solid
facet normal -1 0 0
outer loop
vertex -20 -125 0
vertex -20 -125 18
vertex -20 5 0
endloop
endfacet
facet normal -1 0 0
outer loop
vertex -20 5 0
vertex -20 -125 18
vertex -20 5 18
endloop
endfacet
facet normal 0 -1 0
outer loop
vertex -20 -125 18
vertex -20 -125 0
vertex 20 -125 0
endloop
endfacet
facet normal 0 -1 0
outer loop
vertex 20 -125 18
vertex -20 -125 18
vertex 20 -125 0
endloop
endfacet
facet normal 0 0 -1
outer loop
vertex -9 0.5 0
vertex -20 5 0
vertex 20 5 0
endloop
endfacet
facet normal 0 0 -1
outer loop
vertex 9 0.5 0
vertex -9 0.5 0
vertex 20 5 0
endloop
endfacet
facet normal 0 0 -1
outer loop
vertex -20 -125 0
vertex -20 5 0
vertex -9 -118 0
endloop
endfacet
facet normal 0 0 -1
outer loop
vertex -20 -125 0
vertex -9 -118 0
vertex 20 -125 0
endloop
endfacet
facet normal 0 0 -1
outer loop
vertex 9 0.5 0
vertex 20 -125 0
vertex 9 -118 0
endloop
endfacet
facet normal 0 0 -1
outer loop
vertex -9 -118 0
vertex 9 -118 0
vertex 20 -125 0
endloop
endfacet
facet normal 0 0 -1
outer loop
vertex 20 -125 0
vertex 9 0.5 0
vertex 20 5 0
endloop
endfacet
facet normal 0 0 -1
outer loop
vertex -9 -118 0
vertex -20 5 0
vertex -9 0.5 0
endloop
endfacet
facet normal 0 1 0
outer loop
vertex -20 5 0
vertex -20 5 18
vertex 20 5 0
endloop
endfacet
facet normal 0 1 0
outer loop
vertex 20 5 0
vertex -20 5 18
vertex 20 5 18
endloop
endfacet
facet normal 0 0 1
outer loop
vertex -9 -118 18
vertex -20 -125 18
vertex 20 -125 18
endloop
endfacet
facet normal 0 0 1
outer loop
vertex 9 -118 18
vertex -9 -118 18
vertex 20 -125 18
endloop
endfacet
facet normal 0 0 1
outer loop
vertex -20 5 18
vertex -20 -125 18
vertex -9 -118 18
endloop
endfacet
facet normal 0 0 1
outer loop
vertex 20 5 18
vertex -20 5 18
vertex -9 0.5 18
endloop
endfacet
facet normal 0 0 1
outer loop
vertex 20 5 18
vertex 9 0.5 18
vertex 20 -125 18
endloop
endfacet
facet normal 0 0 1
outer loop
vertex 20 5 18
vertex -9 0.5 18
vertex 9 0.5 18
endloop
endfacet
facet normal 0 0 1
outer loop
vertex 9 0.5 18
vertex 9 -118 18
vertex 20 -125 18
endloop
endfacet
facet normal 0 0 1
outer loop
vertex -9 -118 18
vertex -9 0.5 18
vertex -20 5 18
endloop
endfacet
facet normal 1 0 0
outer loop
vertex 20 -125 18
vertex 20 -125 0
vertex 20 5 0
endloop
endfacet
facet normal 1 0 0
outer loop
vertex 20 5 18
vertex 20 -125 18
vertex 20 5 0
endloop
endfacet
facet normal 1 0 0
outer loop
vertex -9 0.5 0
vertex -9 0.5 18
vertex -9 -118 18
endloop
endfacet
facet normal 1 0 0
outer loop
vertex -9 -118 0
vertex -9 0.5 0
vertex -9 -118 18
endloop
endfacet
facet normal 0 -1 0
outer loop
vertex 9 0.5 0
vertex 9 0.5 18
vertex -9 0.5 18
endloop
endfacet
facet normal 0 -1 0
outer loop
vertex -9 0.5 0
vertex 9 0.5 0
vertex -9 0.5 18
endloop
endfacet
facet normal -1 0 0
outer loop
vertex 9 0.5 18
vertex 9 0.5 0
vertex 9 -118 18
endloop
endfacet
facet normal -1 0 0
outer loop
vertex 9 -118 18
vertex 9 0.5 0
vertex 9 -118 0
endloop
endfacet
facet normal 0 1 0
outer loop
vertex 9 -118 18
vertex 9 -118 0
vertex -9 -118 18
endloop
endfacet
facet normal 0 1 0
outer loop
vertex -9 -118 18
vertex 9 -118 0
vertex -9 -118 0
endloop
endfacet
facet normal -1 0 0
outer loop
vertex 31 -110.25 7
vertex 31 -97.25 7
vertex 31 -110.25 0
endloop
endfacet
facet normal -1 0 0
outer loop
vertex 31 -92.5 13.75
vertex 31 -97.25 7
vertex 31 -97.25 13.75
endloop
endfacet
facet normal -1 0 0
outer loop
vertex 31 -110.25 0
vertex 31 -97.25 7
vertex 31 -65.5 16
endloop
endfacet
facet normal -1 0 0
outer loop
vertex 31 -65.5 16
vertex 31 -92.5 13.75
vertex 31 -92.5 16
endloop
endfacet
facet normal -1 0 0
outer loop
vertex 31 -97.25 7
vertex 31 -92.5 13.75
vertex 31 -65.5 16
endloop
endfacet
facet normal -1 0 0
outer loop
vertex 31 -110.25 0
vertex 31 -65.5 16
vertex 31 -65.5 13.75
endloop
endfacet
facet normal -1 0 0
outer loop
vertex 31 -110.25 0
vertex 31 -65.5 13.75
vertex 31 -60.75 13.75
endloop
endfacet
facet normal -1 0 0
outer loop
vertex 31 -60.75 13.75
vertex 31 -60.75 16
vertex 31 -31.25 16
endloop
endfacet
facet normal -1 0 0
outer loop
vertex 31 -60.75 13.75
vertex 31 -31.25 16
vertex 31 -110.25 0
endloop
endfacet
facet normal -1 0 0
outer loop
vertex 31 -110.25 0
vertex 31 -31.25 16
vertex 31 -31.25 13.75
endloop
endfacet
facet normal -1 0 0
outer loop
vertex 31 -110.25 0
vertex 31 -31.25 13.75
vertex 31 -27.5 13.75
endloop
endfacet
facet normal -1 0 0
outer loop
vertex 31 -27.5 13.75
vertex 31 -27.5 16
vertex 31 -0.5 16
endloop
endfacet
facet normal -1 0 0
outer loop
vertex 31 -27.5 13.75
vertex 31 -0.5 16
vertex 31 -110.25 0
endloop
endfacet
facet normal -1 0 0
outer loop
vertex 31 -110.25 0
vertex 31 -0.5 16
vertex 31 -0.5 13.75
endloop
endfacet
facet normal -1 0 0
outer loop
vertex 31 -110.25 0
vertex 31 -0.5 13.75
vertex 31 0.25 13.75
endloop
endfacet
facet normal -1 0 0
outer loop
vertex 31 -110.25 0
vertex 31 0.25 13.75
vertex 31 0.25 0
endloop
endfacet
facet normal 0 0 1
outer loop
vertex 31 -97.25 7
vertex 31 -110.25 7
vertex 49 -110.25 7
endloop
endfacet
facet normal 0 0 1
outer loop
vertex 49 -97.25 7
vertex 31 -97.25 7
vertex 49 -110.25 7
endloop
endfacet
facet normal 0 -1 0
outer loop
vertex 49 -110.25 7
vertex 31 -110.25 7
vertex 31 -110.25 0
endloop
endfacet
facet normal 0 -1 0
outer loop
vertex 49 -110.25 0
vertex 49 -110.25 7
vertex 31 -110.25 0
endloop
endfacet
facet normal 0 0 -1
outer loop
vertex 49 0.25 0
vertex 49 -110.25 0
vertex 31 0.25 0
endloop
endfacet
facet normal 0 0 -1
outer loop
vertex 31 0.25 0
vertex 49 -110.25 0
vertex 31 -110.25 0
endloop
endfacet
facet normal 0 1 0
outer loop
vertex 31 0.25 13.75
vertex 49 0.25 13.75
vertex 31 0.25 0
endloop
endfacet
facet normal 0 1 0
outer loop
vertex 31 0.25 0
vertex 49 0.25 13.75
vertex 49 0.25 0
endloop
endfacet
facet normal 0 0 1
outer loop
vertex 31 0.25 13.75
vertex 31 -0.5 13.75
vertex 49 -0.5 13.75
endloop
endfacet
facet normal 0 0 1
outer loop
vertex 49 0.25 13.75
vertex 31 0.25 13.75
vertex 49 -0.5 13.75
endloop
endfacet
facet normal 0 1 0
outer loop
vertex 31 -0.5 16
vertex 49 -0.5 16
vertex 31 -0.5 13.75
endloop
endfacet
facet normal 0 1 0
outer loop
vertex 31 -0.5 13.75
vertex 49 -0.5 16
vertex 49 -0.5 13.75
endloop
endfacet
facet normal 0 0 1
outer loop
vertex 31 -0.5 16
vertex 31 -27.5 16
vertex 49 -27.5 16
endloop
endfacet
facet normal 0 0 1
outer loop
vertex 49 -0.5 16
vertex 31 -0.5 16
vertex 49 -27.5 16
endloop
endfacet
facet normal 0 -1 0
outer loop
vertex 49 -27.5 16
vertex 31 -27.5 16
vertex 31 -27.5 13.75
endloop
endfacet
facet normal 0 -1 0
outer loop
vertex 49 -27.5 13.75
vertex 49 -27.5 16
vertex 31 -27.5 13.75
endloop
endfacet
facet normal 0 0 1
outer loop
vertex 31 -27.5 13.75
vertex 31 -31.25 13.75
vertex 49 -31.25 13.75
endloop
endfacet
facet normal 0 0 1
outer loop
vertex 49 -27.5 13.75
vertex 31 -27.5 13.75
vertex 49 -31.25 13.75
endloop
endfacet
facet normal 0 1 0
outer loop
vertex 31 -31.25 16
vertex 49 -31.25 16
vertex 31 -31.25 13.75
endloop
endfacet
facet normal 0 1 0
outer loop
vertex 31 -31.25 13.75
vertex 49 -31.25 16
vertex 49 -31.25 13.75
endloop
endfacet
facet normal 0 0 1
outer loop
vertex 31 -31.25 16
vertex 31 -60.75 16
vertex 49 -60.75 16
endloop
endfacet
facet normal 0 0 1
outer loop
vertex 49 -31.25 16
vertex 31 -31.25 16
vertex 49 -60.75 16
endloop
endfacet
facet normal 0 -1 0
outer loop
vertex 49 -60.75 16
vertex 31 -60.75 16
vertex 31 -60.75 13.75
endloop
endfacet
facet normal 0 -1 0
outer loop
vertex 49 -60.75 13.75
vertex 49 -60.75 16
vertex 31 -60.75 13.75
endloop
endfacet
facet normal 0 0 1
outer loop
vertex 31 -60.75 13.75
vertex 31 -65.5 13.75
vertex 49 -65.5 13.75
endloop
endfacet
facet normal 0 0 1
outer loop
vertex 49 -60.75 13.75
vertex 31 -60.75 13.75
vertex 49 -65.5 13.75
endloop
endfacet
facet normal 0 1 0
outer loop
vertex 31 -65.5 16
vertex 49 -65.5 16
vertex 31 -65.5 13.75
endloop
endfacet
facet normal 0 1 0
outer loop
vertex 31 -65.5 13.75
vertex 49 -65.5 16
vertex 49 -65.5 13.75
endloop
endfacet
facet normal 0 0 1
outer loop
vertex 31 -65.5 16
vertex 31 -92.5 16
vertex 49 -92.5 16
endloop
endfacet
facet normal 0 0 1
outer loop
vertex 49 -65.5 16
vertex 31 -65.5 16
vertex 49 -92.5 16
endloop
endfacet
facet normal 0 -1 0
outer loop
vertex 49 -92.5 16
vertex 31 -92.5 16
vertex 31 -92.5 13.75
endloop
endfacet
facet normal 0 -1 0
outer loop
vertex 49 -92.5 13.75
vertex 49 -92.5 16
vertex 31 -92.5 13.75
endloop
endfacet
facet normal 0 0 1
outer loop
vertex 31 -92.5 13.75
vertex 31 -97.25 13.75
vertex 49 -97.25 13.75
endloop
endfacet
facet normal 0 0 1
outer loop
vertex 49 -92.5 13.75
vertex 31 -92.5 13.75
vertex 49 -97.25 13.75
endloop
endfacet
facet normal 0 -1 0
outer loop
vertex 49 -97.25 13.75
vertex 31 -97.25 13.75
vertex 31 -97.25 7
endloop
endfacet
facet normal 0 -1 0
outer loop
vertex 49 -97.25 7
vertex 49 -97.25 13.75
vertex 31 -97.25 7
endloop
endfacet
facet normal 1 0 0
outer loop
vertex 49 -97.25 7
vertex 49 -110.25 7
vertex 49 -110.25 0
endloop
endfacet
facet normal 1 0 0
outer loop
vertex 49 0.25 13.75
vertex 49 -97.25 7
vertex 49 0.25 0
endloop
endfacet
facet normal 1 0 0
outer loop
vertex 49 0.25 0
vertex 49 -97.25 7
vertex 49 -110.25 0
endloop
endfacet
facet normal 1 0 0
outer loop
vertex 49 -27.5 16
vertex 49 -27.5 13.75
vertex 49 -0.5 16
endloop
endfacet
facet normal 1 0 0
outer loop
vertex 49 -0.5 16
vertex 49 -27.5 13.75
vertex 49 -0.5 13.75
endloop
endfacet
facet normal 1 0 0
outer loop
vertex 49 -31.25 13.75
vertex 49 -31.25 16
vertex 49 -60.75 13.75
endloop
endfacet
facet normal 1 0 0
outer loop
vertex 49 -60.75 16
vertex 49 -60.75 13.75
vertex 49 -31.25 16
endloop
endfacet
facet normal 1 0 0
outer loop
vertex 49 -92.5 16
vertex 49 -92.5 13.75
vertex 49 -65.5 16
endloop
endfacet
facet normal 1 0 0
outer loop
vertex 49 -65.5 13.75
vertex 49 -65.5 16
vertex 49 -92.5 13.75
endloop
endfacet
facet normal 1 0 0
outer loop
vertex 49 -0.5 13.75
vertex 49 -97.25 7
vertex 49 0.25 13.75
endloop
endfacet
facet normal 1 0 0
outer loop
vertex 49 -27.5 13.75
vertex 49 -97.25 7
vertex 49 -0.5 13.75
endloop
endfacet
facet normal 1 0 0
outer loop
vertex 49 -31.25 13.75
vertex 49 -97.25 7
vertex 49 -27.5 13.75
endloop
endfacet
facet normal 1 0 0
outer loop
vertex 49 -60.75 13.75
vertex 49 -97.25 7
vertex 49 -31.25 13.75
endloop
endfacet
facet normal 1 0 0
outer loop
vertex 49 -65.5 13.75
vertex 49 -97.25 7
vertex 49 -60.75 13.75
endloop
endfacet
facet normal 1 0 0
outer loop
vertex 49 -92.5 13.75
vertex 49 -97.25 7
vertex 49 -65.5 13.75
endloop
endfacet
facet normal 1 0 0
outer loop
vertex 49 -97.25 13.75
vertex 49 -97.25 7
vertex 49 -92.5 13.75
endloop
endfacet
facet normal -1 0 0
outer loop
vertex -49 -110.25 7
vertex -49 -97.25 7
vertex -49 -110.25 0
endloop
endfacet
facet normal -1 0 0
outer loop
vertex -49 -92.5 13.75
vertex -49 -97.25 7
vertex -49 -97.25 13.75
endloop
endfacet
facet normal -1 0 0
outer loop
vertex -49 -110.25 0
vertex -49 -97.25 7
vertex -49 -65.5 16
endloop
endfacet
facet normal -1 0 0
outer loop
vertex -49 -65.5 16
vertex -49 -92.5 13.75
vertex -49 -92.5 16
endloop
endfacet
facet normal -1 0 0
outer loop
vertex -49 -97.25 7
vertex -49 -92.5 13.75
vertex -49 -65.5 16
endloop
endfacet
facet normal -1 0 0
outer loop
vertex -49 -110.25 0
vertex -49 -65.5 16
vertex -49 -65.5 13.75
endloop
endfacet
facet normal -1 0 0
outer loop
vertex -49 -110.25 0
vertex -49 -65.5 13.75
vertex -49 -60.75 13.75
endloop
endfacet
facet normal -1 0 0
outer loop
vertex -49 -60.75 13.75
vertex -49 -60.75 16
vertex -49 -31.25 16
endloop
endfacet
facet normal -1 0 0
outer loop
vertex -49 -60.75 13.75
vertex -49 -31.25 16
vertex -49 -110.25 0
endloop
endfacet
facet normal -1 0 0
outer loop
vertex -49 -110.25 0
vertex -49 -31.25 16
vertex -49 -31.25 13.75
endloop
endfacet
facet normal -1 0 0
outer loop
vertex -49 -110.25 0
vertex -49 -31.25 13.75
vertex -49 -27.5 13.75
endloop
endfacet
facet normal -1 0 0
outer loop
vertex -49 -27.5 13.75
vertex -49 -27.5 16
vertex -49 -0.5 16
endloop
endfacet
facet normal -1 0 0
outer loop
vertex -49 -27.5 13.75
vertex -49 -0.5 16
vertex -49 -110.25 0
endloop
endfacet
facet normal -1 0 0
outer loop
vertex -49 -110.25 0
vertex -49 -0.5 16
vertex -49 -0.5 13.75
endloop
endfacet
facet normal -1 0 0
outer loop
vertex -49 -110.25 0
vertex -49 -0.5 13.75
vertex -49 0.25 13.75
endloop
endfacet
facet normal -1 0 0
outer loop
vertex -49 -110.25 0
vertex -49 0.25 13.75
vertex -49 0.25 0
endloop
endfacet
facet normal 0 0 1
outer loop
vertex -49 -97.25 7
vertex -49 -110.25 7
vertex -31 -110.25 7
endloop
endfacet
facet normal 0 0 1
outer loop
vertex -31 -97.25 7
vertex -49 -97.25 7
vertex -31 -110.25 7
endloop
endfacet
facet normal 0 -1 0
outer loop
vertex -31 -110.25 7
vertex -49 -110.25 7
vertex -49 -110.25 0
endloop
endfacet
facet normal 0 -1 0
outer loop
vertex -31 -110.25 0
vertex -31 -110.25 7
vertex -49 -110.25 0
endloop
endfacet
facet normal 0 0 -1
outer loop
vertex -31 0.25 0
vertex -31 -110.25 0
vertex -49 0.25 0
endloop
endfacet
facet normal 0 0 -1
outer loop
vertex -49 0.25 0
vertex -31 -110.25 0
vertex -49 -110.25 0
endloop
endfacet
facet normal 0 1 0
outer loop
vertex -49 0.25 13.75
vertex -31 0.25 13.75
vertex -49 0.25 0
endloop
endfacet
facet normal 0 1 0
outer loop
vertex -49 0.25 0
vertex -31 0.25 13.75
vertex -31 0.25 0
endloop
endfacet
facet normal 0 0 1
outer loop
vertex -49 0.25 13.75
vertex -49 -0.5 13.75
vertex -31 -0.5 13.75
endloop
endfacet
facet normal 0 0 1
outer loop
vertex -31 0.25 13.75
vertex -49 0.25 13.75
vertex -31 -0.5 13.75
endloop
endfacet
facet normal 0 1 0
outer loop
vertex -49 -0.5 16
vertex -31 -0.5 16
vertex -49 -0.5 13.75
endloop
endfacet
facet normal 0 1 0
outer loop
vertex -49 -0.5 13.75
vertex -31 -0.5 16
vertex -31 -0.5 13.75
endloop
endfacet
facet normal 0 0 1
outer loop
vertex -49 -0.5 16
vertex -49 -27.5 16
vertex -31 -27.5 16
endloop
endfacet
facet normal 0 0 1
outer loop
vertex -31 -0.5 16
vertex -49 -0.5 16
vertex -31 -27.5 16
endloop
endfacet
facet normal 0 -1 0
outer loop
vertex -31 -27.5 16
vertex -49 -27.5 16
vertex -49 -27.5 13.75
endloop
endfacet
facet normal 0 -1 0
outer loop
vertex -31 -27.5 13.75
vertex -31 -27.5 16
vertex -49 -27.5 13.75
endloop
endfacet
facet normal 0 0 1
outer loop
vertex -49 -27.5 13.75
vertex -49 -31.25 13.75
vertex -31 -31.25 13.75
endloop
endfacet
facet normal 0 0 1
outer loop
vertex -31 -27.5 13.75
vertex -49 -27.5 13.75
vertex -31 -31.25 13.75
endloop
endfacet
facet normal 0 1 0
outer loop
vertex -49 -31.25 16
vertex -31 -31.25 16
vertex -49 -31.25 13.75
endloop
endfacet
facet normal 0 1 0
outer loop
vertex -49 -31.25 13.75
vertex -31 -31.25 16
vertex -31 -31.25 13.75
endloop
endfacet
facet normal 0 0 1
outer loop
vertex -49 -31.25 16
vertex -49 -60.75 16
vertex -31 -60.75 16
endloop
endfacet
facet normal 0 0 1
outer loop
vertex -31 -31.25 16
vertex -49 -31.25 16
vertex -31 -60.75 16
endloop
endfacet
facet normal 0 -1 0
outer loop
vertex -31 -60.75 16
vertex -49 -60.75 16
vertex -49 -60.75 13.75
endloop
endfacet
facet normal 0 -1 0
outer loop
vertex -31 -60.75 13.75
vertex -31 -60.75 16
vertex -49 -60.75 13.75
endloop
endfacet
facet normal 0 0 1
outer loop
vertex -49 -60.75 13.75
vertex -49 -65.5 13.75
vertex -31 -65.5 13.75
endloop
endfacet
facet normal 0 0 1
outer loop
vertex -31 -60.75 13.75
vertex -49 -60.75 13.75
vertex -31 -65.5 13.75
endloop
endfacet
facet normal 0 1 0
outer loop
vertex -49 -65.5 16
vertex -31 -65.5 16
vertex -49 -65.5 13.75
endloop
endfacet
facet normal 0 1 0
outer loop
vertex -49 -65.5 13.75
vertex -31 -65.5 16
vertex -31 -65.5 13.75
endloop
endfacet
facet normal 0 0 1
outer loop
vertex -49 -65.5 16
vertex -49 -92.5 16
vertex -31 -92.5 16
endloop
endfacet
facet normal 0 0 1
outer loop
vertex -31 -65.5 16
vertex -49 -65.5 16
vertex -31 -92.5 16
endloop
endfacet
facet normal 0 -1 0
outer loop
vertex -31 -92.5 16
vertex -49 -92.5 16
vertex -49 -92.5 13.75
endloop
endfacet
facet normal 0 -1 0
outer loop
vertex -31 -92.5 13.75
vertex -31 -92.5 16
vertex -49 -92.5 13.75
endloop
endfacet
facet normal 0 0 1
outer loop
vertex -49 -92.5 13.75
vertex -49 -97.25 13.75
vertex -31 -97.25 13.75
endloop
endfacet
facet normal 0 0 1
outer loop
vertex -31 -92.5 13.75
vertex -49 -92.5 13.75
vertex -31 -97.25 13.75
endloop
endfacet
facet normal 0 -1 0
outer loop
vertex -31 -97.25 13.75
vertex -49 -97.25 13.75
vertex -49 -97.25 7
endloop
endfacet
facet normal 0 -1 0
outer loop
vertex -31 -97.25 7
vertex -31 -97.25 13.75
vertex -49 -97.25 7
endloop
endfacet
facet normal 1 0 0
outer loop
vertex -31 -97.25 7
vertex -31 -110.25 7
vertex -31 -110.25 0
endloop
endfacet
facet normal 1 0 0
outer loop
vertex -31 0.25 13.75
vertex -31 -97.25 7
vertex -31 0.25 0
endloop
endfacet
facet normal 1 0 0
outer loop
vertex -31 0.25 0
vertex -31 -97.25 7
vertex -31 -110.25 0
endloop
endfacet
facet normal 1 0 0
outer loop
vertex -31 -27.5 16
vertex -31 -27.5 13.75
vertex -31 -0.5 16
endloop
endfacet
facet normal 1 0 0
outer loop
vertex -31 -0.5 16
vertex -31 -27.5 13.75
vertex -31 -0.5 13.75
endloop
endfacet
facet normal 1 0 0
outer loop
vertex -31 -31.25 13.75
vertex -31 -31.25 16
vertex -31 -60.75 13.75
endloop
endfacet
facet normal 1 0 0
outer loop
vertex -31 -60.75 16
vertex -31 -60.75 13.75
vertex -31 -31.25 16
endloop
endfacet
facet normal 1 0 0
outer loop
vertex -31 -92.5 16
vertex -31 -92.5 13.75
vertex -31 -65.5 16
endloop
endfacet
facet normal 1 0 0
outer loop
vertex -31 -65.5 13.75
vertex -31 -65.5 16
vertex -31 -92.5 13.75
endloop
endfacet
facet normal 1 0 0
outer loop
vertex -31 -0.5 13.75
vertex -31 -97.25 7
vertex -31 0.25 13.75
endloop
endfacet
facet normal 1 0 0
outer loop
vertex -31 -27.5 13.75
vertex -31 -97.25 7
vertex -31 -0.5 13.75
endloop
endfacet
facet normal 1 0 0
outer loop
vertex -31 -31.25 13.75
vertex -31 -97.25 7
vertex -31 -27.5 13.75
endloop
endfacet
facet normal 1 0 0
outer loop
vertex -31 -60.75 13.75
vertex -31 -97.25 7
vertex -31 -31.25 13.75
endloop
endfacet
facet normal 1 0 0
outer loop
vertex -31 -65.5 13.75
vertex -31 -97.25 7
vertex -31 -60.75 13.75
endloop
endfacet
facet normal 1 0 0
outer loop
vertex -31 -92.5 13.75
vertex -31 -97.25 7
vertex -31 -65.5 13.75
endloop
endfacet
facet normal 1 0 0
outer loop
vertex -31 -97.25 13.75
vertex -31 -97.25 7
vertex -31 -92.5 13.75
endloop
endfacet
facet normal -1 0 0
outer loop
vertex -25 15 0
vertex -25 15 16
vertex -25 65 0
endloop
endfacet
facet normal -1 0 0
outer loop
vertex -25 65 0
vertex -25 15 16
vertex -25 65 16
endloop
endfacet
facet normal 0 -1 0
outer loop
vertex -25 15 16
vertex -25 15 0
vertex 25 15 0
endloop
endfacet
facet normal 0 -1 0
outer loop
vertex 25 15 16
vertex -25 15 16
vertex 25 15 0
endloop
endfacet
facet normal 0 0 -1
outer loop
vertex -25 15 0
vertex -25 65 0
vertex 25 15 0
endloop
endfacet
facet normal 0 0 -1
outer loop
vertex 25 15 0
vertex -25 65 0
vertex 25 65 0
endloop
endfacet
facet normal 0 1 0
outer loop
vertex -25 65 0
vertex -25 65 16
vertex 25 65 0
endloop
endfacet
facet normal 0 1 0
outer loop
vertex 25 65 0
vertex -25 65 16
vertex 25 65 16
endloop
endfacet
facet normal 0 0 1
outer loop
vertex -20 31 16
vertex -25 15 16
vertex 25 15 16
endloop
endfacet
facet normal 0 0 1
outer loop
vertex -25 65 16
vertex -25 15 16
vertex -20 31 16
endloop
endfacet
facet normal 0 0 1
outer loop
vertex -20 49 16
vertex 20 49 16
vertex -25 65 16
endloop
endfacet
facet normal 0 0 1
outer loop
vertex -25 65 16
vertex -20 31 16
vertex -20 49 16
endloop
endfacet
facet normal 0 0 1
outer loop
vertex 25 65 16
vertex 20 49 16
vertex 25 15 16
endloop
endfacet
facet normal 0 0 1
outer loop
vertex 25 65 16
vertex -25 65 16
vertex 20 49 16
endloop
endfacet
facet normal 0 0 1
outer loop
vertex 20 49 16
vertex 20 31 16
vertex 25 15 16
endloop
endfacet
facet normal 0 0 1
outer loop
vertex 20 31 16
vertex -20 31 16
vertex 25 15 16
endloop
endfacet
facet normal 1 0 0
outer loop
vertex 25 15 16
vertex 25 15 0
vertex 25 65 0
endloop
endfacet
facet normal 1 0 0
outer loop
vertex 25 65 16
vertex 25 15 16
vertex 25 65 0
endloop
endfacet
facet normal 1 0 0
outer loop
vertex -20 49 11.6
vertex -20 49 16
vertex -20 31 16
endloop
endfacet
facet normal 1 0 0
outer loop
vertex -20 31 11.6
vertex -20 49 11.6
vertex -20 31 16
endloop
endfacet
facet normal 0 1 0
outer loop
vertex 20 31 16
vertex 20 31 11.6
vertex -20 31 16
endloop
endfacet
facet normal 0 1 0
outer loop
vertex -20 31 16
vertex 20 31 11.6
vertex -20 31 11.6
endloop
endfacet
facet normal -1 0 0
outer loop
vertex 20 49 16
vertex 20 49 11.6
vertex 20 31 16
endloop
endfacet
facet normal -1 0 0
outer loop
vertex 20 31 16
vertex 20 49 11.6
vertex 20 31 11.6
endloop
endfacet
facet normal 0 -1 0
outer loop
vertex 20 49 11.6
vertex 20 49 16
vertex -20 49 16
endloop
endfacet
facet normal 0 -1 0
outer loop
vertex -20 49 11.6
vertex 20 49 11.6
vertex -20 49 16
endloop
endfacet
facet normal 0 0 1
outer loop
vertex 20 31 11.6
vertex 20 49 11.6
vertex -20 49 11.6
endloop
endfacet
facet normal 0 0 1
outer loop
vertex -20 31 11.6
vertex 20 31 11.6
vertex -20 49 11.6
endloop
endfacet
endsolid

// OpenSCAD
//exterior
translate([-20,0,0])
rotate([90,0,0])
difference(){
translate([0,0,-5])
cube([40,18,130]);
translate([11,-2,-0.5])
cube([18,24,118.5]);
}

//lado1
translate([40,-110,0])
rotate([-90,0,0])
difference(){
translate([0,0,55])
union(){
cube([18,14,110.5],center=true);
translate([0,0,6.5])
cube([18,27.5,97.5],center=true);
translate([0,0,9])
cube([18,32,29.5],center=true);
translate([0,0,41])
cube([18,32,27],center=true);
translate([0,0,-24])
cube([18,32,27],center=true);
}
translate([-20,0,-2])
cube([50,50,150]);
}

//lado2
translate([-40,-110,0])
rotate([-90,0,0])
difference(){
translate([0,0,55])
union(){
cube([18,14,110.5],center=true);
translate([0,0,6.5])
cube([18,27.5,97.5],center=true);
translate([0,0,9])
cube([18,32,29.5],center=true);
translate([0,0,41])
cube([18,32,27],center=true);
translate([0,0,-24])
cube([18,32,27],center=true);
}
translate([-20,0,-2])
cube([50,50,150]);
}


//base
translate([0,40,16])
difference(){
union(){
translate([0,0,-3])
cube([50,50,6],center=true);
translate([0,0,-11])
cube([50,50,10],center=true);
}
translate([-20,-9,0.6])
difference(){
translate([0,0,-5])
cube([40,18,130]);
translate([11,-2,-0.5])
cube([18,24,118.5]);
}
}
